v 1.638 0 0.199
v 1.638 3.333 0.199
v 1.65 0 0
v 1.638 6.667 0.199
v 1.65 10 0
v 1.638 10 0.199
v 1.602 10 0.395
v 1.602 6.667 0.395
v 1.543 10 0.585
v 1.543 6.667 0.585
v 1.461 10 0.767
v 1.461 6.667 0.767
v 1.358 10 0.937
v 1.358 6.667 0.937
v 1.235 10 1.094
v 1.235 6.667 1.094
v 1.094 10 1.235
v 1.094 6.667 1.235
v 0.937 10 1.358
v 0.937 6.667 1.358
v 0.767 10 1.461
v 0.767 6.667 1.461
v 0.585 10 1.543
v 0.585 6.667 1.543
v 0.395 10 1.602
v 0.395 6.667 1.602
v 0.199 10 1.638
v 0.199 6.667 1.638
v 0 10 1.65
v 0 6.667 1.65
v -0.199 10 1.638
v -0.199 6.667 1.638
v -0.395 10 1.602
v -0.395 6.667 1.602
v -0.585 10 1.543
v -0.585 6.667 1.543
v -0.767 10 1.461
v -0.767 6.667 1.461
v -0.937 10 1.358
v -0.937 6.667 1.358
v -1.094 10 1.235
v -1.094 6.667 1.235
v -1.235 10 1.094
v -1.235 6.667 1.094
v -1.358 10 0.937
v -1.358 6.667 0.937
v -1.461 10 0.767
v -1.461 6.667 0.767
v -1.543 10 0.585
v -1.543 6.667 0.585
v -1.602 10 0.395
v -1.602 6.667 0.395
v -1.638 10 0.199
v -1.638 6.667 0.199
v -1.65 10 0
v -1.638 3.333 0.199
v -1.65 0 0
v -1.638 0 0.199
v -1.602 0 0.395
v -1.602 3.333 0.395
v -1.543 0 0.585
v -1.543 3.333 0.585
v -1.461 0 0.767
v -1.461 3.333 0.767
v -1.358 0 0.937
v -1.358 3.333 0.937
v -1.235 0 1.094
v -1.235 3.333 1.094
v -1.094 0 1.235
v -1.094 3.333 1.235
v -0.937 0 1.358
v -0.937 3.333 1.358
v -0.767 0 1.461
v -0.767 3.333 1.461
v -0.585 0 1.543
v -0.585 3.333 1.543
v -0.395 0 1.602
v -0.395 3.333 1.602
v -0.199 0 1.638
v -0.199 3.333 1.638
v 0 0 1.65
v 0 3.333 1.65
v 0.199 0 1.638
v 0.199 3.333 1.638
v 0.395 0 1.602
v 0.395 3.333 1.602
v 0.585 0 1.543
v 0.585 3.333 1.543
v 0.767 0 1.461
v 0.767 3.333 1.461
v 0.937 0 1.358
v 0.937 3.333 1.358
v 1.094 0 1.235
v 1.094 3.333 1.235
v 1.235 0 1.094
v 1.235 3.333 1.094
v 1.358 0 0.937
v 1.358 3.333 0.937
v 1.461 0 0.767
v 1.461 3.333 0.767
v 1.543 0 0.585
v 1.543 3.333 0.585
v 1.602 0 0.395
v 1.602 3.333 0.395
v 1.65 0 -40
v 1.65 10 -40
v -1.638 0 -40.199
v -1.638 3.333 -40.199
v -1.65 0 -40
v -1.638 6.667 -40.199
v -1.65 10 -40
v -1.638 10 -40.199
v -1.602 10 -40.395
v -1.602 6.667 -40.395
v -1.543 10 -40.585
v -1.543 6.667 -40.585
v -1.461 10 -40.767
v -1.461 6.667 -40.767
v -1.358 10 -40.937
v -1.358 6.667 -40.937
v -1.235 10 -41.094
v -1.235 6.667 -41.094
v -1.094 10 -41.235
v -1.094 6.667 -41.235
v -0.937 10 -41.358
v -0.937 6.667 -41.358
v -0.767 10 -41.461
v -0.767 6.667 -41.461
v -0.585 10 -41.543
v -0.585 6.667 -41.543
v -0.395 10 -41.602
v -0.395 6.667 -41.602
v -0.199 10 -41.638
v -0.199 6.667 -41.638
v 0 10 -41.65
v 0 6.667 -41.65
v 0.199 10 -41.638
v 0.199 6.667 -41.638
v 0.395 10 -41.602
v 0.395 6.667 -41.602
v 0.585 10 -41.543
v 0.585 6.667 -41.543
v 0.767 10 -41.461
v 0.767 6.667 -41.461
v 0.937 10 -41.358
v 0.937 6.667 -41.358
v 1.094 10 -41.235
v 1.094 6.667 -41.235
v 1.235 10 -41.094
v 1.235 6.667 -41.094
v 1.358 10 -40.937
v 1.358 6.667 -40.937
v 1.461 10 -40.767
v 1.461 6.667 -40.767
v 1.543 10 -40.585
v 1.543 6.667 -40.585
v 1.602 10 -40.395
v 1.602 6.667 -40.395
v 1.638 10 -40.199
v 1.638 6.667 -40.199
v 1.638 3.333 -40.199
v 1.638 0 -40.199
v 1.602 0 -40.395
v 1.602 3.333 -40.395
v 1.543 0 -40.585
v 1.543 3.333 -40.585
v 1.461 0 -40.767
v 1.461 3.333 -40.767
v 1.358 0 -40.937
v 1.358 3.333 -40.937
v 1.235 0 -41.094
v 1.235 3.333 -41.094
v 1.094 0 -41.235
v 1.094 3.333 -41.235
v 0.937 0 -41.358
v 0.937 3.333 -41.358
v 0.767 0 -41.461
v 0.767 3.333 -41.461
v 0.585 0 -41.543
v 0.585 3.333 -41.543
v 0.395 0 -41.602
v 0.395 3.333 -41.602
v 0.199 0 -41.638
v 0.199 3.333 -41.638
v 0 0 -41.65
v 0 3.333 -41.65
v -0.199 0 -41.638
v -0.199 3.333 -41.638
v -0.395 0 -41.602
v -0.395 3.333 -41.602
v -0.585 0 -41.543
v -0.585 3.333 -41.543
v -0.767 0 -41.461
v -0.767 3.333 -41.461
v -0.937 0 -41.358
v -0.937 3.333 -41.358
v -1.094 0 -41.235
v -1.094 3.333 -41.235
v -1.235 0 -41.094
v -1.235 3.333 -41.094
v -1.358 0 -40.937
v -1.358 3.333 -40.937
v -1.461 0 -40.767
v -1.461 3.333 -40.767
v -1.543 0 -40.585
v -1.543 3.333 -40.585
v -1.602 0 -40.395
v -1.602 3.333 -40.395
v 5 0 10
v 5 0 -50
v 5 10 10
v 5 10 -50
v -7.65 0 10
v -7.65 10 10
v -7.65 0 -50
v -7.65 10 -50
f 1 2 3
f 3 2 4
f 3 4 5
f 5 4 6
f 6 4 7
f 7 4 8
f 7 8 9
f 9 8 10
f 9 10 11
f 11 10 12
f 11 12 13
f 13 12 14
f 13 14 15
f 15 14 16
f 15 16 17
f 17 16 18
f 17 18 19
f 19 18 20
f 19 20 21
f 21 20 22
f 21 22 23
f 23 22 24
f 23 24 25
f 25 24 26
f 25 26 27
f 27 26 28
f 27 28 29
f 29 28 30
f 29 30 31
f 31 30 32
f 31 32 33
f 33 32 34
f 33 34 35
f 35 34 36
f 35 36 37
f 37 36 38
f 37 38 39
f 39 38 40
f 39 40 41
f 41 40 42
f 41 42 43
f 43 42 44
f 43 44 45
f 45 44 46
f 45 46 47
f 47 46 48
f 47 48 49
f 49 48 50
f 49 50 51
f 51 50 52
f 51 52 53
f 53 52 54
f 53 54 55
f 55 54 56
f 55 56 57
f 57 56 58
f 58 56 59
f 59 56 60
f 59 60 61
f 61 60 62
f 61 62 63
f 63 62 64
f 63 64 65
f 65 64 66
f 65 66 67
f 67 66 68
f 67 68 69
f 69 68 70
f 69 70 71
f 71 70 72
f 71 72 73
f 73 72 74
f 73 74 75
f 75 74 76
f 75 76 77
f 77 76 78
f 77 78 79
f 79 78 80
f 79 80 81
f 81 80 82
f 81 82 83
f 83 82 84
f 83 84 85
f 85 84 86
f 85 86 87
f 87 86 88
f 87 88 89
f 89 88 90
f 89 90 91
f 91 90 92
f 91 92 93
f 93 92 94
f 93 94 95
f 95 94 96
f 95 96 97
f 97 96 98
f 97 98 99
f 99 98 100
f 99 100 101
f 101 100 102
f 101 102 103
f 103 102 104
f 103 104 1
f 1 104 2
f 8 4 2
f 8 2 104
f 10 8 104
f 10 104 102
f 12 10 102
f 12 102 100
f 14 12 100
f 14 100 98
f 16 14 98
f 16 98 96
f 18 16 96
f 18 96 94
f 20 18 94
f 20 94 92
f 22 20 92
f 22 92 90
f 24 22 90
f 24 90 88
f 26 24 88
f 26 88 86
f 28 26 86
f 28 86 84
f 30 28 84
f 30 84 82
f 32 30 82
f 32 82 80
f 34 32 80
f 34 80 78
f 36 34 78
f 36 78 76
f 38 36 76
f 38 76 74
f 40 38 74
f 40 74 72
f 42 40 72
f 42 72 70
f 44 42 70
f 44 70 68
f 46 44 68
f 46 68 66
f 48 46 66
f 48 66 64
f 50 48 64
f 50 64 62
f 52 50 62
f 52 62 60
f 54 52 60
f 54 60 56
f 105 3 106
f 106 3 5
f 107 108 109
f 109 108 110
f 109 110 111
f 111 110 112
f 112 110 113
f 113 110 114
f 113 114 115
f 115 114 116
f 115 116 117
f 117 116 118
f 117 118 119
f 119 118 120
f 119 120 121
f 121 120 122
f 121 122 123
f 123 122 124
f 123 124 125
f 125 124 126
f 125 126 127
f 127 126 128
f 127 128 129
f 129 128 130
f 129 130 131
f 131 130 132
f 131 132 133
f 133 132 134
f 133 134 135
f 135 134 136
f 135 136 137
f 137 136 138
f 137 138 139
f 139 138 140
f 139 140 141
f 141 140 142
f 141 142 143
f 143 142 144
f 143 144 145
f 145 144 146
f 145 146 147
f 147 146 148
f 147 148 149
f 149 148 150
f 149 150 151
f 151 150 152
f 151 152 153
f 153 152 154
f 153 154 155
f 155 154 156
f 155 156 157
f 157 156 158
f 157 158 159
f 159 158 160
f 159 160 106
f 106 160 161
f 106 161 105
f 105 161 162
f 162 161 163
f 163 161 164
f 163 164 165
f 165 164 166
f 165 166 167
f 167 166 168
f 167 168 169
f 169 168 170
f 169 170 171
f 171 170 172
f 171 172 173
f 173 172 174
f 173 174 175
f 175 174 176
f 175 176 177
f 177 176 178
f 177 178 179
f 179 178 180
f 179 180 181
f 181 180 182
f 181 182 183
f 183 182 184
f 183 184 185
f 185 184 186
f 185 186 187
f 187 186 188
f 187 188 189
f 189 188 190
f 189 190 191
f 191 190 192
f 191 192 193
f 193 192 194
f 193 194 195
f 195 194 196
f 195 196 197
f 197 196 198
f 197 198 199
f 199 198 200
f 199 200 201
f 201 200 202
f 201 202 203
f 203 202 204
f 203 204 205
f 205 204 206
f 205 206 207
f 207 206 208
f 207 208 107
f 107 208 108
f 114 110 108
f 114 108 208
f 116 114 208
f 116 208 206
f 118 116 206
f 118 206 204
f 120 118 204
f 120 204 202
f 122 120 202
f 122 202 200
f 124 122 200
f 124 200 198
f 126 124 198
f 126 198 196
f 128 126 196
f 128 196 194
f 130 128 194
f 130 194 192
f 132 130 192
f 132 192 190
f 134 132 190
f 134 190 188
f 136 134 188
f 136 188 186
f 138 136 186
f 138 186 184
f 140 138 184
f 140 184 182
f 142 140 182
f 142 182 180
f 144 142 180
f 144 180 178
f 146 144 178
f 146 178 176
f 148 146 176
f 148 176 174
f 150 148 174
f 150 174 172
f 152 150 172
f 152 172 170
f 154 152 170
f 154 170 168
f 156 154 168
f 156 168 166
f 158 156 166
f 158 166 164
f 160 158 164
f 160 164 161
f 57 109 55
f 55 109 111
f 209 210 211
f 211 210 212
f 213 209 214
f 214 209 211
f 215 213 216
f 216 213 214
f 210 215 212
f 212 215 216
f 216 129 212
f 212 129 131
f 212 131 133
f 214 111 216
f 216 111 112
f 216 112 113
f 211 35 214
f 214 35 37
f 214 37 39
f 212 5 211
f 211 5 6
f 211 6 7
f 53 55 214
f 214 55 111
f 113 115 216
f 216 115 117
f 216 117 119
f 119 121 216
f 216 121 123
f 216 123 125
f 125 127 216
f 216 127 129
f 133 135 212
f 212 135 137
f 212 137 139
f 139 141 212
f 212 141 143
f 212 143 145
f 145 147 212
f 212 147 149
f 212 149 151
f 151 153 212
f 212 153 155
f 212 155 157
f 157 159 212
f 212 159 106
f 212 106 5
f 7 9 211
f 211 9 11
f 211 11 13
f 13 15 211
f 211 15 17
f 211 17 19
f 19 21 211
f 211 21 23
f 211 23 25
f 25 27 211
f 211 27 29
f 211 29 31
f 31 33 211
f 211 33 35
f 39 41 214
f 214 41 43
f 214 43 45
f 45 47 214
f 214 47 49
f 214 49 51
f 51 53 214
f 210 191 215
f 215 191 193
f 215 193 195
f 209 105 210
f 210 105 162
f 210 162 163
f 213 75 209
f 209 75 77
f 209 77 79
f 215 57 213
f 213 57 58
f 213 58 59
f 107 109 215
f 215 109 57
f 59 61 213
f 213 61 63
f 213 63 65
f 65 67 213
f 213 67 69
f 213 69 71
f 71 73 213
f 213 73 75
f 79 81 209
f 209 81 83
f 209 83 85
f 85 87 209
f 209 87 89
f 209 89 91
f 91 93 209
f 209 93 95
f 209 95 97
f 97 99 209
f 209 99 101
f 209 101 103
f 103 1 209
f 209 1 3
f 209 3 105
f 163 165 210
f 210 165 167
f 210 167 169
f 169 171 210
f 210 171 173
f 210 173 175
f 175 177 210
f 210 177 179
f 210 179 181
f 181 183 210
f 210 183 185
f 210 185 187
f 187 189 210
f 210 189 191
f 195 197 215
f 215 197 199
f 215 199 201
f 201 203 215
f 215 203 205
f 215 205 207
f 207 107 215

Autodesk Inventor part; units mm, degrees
ref_plane "YZ Plane" through (0, 0, 0) normal (1, 0, 0) x (0, 1, 0)
ref_plane "XZ Plane" through (0, 0, 0) normal (0, 1, 0) x (-1, 0, 0)
ref_plane "XY Plane" through (0, 0, 0) normal (0, 0, 1) x (1, 0, 0)
sketch "Sketch1" plane through (0, 0, 0) normal (0, 1, 0) x (-1, 0, 0)
  line L0 (0, 0) -> (0, -40) construction
  line L1 (-1.65, 0) -> (-1.65, -40)
  line L2 (1.65, -40) -> (1.65, 0)
  arc A0 (1.65, 0) -> (-1.65, 0) centre (0, 0) ccw
  arc A1 (-1.65, -40) -> (1.65, -40) centre (0, -40) ccw
  line L3 (-5, 10) -> (7.65, 10)
  line L4 (7.65, 10) -> (7.65, -50)
  line L5 (7.65, -50) -> (-5, -50)
  line L6 (-5, -50) -> (-5, 10)
  circle A2 centre (0, -40) radius 5
  circle A3 centre (0, 0) radius 5
  point P0 (0, -20)
  dimension "d0" = 3.3
  dimension "d1" = 40
  dimension "d2" = 10
  dimension "d3" = 10
  dimension "d4" = 10
  dimension "d5" = 10
  dimension "d6" = 6
extrude "Extrusion1" add sketch "Sketch1" along normal blind 10 contours L1 A3 L2 A0 | L1 A2 L6 A3 | L1 A1 L2 A2 | L6 L3 L4 L5 A2 L2 A3 picked at (-2.0178, -2.9645) picked at (-2.0178, -37.0355)
ref_plane "Work Plane1" through (0, 0, 0) normal (1, 0, 0) x (0, 0, -1)
properties part number "Rail"
